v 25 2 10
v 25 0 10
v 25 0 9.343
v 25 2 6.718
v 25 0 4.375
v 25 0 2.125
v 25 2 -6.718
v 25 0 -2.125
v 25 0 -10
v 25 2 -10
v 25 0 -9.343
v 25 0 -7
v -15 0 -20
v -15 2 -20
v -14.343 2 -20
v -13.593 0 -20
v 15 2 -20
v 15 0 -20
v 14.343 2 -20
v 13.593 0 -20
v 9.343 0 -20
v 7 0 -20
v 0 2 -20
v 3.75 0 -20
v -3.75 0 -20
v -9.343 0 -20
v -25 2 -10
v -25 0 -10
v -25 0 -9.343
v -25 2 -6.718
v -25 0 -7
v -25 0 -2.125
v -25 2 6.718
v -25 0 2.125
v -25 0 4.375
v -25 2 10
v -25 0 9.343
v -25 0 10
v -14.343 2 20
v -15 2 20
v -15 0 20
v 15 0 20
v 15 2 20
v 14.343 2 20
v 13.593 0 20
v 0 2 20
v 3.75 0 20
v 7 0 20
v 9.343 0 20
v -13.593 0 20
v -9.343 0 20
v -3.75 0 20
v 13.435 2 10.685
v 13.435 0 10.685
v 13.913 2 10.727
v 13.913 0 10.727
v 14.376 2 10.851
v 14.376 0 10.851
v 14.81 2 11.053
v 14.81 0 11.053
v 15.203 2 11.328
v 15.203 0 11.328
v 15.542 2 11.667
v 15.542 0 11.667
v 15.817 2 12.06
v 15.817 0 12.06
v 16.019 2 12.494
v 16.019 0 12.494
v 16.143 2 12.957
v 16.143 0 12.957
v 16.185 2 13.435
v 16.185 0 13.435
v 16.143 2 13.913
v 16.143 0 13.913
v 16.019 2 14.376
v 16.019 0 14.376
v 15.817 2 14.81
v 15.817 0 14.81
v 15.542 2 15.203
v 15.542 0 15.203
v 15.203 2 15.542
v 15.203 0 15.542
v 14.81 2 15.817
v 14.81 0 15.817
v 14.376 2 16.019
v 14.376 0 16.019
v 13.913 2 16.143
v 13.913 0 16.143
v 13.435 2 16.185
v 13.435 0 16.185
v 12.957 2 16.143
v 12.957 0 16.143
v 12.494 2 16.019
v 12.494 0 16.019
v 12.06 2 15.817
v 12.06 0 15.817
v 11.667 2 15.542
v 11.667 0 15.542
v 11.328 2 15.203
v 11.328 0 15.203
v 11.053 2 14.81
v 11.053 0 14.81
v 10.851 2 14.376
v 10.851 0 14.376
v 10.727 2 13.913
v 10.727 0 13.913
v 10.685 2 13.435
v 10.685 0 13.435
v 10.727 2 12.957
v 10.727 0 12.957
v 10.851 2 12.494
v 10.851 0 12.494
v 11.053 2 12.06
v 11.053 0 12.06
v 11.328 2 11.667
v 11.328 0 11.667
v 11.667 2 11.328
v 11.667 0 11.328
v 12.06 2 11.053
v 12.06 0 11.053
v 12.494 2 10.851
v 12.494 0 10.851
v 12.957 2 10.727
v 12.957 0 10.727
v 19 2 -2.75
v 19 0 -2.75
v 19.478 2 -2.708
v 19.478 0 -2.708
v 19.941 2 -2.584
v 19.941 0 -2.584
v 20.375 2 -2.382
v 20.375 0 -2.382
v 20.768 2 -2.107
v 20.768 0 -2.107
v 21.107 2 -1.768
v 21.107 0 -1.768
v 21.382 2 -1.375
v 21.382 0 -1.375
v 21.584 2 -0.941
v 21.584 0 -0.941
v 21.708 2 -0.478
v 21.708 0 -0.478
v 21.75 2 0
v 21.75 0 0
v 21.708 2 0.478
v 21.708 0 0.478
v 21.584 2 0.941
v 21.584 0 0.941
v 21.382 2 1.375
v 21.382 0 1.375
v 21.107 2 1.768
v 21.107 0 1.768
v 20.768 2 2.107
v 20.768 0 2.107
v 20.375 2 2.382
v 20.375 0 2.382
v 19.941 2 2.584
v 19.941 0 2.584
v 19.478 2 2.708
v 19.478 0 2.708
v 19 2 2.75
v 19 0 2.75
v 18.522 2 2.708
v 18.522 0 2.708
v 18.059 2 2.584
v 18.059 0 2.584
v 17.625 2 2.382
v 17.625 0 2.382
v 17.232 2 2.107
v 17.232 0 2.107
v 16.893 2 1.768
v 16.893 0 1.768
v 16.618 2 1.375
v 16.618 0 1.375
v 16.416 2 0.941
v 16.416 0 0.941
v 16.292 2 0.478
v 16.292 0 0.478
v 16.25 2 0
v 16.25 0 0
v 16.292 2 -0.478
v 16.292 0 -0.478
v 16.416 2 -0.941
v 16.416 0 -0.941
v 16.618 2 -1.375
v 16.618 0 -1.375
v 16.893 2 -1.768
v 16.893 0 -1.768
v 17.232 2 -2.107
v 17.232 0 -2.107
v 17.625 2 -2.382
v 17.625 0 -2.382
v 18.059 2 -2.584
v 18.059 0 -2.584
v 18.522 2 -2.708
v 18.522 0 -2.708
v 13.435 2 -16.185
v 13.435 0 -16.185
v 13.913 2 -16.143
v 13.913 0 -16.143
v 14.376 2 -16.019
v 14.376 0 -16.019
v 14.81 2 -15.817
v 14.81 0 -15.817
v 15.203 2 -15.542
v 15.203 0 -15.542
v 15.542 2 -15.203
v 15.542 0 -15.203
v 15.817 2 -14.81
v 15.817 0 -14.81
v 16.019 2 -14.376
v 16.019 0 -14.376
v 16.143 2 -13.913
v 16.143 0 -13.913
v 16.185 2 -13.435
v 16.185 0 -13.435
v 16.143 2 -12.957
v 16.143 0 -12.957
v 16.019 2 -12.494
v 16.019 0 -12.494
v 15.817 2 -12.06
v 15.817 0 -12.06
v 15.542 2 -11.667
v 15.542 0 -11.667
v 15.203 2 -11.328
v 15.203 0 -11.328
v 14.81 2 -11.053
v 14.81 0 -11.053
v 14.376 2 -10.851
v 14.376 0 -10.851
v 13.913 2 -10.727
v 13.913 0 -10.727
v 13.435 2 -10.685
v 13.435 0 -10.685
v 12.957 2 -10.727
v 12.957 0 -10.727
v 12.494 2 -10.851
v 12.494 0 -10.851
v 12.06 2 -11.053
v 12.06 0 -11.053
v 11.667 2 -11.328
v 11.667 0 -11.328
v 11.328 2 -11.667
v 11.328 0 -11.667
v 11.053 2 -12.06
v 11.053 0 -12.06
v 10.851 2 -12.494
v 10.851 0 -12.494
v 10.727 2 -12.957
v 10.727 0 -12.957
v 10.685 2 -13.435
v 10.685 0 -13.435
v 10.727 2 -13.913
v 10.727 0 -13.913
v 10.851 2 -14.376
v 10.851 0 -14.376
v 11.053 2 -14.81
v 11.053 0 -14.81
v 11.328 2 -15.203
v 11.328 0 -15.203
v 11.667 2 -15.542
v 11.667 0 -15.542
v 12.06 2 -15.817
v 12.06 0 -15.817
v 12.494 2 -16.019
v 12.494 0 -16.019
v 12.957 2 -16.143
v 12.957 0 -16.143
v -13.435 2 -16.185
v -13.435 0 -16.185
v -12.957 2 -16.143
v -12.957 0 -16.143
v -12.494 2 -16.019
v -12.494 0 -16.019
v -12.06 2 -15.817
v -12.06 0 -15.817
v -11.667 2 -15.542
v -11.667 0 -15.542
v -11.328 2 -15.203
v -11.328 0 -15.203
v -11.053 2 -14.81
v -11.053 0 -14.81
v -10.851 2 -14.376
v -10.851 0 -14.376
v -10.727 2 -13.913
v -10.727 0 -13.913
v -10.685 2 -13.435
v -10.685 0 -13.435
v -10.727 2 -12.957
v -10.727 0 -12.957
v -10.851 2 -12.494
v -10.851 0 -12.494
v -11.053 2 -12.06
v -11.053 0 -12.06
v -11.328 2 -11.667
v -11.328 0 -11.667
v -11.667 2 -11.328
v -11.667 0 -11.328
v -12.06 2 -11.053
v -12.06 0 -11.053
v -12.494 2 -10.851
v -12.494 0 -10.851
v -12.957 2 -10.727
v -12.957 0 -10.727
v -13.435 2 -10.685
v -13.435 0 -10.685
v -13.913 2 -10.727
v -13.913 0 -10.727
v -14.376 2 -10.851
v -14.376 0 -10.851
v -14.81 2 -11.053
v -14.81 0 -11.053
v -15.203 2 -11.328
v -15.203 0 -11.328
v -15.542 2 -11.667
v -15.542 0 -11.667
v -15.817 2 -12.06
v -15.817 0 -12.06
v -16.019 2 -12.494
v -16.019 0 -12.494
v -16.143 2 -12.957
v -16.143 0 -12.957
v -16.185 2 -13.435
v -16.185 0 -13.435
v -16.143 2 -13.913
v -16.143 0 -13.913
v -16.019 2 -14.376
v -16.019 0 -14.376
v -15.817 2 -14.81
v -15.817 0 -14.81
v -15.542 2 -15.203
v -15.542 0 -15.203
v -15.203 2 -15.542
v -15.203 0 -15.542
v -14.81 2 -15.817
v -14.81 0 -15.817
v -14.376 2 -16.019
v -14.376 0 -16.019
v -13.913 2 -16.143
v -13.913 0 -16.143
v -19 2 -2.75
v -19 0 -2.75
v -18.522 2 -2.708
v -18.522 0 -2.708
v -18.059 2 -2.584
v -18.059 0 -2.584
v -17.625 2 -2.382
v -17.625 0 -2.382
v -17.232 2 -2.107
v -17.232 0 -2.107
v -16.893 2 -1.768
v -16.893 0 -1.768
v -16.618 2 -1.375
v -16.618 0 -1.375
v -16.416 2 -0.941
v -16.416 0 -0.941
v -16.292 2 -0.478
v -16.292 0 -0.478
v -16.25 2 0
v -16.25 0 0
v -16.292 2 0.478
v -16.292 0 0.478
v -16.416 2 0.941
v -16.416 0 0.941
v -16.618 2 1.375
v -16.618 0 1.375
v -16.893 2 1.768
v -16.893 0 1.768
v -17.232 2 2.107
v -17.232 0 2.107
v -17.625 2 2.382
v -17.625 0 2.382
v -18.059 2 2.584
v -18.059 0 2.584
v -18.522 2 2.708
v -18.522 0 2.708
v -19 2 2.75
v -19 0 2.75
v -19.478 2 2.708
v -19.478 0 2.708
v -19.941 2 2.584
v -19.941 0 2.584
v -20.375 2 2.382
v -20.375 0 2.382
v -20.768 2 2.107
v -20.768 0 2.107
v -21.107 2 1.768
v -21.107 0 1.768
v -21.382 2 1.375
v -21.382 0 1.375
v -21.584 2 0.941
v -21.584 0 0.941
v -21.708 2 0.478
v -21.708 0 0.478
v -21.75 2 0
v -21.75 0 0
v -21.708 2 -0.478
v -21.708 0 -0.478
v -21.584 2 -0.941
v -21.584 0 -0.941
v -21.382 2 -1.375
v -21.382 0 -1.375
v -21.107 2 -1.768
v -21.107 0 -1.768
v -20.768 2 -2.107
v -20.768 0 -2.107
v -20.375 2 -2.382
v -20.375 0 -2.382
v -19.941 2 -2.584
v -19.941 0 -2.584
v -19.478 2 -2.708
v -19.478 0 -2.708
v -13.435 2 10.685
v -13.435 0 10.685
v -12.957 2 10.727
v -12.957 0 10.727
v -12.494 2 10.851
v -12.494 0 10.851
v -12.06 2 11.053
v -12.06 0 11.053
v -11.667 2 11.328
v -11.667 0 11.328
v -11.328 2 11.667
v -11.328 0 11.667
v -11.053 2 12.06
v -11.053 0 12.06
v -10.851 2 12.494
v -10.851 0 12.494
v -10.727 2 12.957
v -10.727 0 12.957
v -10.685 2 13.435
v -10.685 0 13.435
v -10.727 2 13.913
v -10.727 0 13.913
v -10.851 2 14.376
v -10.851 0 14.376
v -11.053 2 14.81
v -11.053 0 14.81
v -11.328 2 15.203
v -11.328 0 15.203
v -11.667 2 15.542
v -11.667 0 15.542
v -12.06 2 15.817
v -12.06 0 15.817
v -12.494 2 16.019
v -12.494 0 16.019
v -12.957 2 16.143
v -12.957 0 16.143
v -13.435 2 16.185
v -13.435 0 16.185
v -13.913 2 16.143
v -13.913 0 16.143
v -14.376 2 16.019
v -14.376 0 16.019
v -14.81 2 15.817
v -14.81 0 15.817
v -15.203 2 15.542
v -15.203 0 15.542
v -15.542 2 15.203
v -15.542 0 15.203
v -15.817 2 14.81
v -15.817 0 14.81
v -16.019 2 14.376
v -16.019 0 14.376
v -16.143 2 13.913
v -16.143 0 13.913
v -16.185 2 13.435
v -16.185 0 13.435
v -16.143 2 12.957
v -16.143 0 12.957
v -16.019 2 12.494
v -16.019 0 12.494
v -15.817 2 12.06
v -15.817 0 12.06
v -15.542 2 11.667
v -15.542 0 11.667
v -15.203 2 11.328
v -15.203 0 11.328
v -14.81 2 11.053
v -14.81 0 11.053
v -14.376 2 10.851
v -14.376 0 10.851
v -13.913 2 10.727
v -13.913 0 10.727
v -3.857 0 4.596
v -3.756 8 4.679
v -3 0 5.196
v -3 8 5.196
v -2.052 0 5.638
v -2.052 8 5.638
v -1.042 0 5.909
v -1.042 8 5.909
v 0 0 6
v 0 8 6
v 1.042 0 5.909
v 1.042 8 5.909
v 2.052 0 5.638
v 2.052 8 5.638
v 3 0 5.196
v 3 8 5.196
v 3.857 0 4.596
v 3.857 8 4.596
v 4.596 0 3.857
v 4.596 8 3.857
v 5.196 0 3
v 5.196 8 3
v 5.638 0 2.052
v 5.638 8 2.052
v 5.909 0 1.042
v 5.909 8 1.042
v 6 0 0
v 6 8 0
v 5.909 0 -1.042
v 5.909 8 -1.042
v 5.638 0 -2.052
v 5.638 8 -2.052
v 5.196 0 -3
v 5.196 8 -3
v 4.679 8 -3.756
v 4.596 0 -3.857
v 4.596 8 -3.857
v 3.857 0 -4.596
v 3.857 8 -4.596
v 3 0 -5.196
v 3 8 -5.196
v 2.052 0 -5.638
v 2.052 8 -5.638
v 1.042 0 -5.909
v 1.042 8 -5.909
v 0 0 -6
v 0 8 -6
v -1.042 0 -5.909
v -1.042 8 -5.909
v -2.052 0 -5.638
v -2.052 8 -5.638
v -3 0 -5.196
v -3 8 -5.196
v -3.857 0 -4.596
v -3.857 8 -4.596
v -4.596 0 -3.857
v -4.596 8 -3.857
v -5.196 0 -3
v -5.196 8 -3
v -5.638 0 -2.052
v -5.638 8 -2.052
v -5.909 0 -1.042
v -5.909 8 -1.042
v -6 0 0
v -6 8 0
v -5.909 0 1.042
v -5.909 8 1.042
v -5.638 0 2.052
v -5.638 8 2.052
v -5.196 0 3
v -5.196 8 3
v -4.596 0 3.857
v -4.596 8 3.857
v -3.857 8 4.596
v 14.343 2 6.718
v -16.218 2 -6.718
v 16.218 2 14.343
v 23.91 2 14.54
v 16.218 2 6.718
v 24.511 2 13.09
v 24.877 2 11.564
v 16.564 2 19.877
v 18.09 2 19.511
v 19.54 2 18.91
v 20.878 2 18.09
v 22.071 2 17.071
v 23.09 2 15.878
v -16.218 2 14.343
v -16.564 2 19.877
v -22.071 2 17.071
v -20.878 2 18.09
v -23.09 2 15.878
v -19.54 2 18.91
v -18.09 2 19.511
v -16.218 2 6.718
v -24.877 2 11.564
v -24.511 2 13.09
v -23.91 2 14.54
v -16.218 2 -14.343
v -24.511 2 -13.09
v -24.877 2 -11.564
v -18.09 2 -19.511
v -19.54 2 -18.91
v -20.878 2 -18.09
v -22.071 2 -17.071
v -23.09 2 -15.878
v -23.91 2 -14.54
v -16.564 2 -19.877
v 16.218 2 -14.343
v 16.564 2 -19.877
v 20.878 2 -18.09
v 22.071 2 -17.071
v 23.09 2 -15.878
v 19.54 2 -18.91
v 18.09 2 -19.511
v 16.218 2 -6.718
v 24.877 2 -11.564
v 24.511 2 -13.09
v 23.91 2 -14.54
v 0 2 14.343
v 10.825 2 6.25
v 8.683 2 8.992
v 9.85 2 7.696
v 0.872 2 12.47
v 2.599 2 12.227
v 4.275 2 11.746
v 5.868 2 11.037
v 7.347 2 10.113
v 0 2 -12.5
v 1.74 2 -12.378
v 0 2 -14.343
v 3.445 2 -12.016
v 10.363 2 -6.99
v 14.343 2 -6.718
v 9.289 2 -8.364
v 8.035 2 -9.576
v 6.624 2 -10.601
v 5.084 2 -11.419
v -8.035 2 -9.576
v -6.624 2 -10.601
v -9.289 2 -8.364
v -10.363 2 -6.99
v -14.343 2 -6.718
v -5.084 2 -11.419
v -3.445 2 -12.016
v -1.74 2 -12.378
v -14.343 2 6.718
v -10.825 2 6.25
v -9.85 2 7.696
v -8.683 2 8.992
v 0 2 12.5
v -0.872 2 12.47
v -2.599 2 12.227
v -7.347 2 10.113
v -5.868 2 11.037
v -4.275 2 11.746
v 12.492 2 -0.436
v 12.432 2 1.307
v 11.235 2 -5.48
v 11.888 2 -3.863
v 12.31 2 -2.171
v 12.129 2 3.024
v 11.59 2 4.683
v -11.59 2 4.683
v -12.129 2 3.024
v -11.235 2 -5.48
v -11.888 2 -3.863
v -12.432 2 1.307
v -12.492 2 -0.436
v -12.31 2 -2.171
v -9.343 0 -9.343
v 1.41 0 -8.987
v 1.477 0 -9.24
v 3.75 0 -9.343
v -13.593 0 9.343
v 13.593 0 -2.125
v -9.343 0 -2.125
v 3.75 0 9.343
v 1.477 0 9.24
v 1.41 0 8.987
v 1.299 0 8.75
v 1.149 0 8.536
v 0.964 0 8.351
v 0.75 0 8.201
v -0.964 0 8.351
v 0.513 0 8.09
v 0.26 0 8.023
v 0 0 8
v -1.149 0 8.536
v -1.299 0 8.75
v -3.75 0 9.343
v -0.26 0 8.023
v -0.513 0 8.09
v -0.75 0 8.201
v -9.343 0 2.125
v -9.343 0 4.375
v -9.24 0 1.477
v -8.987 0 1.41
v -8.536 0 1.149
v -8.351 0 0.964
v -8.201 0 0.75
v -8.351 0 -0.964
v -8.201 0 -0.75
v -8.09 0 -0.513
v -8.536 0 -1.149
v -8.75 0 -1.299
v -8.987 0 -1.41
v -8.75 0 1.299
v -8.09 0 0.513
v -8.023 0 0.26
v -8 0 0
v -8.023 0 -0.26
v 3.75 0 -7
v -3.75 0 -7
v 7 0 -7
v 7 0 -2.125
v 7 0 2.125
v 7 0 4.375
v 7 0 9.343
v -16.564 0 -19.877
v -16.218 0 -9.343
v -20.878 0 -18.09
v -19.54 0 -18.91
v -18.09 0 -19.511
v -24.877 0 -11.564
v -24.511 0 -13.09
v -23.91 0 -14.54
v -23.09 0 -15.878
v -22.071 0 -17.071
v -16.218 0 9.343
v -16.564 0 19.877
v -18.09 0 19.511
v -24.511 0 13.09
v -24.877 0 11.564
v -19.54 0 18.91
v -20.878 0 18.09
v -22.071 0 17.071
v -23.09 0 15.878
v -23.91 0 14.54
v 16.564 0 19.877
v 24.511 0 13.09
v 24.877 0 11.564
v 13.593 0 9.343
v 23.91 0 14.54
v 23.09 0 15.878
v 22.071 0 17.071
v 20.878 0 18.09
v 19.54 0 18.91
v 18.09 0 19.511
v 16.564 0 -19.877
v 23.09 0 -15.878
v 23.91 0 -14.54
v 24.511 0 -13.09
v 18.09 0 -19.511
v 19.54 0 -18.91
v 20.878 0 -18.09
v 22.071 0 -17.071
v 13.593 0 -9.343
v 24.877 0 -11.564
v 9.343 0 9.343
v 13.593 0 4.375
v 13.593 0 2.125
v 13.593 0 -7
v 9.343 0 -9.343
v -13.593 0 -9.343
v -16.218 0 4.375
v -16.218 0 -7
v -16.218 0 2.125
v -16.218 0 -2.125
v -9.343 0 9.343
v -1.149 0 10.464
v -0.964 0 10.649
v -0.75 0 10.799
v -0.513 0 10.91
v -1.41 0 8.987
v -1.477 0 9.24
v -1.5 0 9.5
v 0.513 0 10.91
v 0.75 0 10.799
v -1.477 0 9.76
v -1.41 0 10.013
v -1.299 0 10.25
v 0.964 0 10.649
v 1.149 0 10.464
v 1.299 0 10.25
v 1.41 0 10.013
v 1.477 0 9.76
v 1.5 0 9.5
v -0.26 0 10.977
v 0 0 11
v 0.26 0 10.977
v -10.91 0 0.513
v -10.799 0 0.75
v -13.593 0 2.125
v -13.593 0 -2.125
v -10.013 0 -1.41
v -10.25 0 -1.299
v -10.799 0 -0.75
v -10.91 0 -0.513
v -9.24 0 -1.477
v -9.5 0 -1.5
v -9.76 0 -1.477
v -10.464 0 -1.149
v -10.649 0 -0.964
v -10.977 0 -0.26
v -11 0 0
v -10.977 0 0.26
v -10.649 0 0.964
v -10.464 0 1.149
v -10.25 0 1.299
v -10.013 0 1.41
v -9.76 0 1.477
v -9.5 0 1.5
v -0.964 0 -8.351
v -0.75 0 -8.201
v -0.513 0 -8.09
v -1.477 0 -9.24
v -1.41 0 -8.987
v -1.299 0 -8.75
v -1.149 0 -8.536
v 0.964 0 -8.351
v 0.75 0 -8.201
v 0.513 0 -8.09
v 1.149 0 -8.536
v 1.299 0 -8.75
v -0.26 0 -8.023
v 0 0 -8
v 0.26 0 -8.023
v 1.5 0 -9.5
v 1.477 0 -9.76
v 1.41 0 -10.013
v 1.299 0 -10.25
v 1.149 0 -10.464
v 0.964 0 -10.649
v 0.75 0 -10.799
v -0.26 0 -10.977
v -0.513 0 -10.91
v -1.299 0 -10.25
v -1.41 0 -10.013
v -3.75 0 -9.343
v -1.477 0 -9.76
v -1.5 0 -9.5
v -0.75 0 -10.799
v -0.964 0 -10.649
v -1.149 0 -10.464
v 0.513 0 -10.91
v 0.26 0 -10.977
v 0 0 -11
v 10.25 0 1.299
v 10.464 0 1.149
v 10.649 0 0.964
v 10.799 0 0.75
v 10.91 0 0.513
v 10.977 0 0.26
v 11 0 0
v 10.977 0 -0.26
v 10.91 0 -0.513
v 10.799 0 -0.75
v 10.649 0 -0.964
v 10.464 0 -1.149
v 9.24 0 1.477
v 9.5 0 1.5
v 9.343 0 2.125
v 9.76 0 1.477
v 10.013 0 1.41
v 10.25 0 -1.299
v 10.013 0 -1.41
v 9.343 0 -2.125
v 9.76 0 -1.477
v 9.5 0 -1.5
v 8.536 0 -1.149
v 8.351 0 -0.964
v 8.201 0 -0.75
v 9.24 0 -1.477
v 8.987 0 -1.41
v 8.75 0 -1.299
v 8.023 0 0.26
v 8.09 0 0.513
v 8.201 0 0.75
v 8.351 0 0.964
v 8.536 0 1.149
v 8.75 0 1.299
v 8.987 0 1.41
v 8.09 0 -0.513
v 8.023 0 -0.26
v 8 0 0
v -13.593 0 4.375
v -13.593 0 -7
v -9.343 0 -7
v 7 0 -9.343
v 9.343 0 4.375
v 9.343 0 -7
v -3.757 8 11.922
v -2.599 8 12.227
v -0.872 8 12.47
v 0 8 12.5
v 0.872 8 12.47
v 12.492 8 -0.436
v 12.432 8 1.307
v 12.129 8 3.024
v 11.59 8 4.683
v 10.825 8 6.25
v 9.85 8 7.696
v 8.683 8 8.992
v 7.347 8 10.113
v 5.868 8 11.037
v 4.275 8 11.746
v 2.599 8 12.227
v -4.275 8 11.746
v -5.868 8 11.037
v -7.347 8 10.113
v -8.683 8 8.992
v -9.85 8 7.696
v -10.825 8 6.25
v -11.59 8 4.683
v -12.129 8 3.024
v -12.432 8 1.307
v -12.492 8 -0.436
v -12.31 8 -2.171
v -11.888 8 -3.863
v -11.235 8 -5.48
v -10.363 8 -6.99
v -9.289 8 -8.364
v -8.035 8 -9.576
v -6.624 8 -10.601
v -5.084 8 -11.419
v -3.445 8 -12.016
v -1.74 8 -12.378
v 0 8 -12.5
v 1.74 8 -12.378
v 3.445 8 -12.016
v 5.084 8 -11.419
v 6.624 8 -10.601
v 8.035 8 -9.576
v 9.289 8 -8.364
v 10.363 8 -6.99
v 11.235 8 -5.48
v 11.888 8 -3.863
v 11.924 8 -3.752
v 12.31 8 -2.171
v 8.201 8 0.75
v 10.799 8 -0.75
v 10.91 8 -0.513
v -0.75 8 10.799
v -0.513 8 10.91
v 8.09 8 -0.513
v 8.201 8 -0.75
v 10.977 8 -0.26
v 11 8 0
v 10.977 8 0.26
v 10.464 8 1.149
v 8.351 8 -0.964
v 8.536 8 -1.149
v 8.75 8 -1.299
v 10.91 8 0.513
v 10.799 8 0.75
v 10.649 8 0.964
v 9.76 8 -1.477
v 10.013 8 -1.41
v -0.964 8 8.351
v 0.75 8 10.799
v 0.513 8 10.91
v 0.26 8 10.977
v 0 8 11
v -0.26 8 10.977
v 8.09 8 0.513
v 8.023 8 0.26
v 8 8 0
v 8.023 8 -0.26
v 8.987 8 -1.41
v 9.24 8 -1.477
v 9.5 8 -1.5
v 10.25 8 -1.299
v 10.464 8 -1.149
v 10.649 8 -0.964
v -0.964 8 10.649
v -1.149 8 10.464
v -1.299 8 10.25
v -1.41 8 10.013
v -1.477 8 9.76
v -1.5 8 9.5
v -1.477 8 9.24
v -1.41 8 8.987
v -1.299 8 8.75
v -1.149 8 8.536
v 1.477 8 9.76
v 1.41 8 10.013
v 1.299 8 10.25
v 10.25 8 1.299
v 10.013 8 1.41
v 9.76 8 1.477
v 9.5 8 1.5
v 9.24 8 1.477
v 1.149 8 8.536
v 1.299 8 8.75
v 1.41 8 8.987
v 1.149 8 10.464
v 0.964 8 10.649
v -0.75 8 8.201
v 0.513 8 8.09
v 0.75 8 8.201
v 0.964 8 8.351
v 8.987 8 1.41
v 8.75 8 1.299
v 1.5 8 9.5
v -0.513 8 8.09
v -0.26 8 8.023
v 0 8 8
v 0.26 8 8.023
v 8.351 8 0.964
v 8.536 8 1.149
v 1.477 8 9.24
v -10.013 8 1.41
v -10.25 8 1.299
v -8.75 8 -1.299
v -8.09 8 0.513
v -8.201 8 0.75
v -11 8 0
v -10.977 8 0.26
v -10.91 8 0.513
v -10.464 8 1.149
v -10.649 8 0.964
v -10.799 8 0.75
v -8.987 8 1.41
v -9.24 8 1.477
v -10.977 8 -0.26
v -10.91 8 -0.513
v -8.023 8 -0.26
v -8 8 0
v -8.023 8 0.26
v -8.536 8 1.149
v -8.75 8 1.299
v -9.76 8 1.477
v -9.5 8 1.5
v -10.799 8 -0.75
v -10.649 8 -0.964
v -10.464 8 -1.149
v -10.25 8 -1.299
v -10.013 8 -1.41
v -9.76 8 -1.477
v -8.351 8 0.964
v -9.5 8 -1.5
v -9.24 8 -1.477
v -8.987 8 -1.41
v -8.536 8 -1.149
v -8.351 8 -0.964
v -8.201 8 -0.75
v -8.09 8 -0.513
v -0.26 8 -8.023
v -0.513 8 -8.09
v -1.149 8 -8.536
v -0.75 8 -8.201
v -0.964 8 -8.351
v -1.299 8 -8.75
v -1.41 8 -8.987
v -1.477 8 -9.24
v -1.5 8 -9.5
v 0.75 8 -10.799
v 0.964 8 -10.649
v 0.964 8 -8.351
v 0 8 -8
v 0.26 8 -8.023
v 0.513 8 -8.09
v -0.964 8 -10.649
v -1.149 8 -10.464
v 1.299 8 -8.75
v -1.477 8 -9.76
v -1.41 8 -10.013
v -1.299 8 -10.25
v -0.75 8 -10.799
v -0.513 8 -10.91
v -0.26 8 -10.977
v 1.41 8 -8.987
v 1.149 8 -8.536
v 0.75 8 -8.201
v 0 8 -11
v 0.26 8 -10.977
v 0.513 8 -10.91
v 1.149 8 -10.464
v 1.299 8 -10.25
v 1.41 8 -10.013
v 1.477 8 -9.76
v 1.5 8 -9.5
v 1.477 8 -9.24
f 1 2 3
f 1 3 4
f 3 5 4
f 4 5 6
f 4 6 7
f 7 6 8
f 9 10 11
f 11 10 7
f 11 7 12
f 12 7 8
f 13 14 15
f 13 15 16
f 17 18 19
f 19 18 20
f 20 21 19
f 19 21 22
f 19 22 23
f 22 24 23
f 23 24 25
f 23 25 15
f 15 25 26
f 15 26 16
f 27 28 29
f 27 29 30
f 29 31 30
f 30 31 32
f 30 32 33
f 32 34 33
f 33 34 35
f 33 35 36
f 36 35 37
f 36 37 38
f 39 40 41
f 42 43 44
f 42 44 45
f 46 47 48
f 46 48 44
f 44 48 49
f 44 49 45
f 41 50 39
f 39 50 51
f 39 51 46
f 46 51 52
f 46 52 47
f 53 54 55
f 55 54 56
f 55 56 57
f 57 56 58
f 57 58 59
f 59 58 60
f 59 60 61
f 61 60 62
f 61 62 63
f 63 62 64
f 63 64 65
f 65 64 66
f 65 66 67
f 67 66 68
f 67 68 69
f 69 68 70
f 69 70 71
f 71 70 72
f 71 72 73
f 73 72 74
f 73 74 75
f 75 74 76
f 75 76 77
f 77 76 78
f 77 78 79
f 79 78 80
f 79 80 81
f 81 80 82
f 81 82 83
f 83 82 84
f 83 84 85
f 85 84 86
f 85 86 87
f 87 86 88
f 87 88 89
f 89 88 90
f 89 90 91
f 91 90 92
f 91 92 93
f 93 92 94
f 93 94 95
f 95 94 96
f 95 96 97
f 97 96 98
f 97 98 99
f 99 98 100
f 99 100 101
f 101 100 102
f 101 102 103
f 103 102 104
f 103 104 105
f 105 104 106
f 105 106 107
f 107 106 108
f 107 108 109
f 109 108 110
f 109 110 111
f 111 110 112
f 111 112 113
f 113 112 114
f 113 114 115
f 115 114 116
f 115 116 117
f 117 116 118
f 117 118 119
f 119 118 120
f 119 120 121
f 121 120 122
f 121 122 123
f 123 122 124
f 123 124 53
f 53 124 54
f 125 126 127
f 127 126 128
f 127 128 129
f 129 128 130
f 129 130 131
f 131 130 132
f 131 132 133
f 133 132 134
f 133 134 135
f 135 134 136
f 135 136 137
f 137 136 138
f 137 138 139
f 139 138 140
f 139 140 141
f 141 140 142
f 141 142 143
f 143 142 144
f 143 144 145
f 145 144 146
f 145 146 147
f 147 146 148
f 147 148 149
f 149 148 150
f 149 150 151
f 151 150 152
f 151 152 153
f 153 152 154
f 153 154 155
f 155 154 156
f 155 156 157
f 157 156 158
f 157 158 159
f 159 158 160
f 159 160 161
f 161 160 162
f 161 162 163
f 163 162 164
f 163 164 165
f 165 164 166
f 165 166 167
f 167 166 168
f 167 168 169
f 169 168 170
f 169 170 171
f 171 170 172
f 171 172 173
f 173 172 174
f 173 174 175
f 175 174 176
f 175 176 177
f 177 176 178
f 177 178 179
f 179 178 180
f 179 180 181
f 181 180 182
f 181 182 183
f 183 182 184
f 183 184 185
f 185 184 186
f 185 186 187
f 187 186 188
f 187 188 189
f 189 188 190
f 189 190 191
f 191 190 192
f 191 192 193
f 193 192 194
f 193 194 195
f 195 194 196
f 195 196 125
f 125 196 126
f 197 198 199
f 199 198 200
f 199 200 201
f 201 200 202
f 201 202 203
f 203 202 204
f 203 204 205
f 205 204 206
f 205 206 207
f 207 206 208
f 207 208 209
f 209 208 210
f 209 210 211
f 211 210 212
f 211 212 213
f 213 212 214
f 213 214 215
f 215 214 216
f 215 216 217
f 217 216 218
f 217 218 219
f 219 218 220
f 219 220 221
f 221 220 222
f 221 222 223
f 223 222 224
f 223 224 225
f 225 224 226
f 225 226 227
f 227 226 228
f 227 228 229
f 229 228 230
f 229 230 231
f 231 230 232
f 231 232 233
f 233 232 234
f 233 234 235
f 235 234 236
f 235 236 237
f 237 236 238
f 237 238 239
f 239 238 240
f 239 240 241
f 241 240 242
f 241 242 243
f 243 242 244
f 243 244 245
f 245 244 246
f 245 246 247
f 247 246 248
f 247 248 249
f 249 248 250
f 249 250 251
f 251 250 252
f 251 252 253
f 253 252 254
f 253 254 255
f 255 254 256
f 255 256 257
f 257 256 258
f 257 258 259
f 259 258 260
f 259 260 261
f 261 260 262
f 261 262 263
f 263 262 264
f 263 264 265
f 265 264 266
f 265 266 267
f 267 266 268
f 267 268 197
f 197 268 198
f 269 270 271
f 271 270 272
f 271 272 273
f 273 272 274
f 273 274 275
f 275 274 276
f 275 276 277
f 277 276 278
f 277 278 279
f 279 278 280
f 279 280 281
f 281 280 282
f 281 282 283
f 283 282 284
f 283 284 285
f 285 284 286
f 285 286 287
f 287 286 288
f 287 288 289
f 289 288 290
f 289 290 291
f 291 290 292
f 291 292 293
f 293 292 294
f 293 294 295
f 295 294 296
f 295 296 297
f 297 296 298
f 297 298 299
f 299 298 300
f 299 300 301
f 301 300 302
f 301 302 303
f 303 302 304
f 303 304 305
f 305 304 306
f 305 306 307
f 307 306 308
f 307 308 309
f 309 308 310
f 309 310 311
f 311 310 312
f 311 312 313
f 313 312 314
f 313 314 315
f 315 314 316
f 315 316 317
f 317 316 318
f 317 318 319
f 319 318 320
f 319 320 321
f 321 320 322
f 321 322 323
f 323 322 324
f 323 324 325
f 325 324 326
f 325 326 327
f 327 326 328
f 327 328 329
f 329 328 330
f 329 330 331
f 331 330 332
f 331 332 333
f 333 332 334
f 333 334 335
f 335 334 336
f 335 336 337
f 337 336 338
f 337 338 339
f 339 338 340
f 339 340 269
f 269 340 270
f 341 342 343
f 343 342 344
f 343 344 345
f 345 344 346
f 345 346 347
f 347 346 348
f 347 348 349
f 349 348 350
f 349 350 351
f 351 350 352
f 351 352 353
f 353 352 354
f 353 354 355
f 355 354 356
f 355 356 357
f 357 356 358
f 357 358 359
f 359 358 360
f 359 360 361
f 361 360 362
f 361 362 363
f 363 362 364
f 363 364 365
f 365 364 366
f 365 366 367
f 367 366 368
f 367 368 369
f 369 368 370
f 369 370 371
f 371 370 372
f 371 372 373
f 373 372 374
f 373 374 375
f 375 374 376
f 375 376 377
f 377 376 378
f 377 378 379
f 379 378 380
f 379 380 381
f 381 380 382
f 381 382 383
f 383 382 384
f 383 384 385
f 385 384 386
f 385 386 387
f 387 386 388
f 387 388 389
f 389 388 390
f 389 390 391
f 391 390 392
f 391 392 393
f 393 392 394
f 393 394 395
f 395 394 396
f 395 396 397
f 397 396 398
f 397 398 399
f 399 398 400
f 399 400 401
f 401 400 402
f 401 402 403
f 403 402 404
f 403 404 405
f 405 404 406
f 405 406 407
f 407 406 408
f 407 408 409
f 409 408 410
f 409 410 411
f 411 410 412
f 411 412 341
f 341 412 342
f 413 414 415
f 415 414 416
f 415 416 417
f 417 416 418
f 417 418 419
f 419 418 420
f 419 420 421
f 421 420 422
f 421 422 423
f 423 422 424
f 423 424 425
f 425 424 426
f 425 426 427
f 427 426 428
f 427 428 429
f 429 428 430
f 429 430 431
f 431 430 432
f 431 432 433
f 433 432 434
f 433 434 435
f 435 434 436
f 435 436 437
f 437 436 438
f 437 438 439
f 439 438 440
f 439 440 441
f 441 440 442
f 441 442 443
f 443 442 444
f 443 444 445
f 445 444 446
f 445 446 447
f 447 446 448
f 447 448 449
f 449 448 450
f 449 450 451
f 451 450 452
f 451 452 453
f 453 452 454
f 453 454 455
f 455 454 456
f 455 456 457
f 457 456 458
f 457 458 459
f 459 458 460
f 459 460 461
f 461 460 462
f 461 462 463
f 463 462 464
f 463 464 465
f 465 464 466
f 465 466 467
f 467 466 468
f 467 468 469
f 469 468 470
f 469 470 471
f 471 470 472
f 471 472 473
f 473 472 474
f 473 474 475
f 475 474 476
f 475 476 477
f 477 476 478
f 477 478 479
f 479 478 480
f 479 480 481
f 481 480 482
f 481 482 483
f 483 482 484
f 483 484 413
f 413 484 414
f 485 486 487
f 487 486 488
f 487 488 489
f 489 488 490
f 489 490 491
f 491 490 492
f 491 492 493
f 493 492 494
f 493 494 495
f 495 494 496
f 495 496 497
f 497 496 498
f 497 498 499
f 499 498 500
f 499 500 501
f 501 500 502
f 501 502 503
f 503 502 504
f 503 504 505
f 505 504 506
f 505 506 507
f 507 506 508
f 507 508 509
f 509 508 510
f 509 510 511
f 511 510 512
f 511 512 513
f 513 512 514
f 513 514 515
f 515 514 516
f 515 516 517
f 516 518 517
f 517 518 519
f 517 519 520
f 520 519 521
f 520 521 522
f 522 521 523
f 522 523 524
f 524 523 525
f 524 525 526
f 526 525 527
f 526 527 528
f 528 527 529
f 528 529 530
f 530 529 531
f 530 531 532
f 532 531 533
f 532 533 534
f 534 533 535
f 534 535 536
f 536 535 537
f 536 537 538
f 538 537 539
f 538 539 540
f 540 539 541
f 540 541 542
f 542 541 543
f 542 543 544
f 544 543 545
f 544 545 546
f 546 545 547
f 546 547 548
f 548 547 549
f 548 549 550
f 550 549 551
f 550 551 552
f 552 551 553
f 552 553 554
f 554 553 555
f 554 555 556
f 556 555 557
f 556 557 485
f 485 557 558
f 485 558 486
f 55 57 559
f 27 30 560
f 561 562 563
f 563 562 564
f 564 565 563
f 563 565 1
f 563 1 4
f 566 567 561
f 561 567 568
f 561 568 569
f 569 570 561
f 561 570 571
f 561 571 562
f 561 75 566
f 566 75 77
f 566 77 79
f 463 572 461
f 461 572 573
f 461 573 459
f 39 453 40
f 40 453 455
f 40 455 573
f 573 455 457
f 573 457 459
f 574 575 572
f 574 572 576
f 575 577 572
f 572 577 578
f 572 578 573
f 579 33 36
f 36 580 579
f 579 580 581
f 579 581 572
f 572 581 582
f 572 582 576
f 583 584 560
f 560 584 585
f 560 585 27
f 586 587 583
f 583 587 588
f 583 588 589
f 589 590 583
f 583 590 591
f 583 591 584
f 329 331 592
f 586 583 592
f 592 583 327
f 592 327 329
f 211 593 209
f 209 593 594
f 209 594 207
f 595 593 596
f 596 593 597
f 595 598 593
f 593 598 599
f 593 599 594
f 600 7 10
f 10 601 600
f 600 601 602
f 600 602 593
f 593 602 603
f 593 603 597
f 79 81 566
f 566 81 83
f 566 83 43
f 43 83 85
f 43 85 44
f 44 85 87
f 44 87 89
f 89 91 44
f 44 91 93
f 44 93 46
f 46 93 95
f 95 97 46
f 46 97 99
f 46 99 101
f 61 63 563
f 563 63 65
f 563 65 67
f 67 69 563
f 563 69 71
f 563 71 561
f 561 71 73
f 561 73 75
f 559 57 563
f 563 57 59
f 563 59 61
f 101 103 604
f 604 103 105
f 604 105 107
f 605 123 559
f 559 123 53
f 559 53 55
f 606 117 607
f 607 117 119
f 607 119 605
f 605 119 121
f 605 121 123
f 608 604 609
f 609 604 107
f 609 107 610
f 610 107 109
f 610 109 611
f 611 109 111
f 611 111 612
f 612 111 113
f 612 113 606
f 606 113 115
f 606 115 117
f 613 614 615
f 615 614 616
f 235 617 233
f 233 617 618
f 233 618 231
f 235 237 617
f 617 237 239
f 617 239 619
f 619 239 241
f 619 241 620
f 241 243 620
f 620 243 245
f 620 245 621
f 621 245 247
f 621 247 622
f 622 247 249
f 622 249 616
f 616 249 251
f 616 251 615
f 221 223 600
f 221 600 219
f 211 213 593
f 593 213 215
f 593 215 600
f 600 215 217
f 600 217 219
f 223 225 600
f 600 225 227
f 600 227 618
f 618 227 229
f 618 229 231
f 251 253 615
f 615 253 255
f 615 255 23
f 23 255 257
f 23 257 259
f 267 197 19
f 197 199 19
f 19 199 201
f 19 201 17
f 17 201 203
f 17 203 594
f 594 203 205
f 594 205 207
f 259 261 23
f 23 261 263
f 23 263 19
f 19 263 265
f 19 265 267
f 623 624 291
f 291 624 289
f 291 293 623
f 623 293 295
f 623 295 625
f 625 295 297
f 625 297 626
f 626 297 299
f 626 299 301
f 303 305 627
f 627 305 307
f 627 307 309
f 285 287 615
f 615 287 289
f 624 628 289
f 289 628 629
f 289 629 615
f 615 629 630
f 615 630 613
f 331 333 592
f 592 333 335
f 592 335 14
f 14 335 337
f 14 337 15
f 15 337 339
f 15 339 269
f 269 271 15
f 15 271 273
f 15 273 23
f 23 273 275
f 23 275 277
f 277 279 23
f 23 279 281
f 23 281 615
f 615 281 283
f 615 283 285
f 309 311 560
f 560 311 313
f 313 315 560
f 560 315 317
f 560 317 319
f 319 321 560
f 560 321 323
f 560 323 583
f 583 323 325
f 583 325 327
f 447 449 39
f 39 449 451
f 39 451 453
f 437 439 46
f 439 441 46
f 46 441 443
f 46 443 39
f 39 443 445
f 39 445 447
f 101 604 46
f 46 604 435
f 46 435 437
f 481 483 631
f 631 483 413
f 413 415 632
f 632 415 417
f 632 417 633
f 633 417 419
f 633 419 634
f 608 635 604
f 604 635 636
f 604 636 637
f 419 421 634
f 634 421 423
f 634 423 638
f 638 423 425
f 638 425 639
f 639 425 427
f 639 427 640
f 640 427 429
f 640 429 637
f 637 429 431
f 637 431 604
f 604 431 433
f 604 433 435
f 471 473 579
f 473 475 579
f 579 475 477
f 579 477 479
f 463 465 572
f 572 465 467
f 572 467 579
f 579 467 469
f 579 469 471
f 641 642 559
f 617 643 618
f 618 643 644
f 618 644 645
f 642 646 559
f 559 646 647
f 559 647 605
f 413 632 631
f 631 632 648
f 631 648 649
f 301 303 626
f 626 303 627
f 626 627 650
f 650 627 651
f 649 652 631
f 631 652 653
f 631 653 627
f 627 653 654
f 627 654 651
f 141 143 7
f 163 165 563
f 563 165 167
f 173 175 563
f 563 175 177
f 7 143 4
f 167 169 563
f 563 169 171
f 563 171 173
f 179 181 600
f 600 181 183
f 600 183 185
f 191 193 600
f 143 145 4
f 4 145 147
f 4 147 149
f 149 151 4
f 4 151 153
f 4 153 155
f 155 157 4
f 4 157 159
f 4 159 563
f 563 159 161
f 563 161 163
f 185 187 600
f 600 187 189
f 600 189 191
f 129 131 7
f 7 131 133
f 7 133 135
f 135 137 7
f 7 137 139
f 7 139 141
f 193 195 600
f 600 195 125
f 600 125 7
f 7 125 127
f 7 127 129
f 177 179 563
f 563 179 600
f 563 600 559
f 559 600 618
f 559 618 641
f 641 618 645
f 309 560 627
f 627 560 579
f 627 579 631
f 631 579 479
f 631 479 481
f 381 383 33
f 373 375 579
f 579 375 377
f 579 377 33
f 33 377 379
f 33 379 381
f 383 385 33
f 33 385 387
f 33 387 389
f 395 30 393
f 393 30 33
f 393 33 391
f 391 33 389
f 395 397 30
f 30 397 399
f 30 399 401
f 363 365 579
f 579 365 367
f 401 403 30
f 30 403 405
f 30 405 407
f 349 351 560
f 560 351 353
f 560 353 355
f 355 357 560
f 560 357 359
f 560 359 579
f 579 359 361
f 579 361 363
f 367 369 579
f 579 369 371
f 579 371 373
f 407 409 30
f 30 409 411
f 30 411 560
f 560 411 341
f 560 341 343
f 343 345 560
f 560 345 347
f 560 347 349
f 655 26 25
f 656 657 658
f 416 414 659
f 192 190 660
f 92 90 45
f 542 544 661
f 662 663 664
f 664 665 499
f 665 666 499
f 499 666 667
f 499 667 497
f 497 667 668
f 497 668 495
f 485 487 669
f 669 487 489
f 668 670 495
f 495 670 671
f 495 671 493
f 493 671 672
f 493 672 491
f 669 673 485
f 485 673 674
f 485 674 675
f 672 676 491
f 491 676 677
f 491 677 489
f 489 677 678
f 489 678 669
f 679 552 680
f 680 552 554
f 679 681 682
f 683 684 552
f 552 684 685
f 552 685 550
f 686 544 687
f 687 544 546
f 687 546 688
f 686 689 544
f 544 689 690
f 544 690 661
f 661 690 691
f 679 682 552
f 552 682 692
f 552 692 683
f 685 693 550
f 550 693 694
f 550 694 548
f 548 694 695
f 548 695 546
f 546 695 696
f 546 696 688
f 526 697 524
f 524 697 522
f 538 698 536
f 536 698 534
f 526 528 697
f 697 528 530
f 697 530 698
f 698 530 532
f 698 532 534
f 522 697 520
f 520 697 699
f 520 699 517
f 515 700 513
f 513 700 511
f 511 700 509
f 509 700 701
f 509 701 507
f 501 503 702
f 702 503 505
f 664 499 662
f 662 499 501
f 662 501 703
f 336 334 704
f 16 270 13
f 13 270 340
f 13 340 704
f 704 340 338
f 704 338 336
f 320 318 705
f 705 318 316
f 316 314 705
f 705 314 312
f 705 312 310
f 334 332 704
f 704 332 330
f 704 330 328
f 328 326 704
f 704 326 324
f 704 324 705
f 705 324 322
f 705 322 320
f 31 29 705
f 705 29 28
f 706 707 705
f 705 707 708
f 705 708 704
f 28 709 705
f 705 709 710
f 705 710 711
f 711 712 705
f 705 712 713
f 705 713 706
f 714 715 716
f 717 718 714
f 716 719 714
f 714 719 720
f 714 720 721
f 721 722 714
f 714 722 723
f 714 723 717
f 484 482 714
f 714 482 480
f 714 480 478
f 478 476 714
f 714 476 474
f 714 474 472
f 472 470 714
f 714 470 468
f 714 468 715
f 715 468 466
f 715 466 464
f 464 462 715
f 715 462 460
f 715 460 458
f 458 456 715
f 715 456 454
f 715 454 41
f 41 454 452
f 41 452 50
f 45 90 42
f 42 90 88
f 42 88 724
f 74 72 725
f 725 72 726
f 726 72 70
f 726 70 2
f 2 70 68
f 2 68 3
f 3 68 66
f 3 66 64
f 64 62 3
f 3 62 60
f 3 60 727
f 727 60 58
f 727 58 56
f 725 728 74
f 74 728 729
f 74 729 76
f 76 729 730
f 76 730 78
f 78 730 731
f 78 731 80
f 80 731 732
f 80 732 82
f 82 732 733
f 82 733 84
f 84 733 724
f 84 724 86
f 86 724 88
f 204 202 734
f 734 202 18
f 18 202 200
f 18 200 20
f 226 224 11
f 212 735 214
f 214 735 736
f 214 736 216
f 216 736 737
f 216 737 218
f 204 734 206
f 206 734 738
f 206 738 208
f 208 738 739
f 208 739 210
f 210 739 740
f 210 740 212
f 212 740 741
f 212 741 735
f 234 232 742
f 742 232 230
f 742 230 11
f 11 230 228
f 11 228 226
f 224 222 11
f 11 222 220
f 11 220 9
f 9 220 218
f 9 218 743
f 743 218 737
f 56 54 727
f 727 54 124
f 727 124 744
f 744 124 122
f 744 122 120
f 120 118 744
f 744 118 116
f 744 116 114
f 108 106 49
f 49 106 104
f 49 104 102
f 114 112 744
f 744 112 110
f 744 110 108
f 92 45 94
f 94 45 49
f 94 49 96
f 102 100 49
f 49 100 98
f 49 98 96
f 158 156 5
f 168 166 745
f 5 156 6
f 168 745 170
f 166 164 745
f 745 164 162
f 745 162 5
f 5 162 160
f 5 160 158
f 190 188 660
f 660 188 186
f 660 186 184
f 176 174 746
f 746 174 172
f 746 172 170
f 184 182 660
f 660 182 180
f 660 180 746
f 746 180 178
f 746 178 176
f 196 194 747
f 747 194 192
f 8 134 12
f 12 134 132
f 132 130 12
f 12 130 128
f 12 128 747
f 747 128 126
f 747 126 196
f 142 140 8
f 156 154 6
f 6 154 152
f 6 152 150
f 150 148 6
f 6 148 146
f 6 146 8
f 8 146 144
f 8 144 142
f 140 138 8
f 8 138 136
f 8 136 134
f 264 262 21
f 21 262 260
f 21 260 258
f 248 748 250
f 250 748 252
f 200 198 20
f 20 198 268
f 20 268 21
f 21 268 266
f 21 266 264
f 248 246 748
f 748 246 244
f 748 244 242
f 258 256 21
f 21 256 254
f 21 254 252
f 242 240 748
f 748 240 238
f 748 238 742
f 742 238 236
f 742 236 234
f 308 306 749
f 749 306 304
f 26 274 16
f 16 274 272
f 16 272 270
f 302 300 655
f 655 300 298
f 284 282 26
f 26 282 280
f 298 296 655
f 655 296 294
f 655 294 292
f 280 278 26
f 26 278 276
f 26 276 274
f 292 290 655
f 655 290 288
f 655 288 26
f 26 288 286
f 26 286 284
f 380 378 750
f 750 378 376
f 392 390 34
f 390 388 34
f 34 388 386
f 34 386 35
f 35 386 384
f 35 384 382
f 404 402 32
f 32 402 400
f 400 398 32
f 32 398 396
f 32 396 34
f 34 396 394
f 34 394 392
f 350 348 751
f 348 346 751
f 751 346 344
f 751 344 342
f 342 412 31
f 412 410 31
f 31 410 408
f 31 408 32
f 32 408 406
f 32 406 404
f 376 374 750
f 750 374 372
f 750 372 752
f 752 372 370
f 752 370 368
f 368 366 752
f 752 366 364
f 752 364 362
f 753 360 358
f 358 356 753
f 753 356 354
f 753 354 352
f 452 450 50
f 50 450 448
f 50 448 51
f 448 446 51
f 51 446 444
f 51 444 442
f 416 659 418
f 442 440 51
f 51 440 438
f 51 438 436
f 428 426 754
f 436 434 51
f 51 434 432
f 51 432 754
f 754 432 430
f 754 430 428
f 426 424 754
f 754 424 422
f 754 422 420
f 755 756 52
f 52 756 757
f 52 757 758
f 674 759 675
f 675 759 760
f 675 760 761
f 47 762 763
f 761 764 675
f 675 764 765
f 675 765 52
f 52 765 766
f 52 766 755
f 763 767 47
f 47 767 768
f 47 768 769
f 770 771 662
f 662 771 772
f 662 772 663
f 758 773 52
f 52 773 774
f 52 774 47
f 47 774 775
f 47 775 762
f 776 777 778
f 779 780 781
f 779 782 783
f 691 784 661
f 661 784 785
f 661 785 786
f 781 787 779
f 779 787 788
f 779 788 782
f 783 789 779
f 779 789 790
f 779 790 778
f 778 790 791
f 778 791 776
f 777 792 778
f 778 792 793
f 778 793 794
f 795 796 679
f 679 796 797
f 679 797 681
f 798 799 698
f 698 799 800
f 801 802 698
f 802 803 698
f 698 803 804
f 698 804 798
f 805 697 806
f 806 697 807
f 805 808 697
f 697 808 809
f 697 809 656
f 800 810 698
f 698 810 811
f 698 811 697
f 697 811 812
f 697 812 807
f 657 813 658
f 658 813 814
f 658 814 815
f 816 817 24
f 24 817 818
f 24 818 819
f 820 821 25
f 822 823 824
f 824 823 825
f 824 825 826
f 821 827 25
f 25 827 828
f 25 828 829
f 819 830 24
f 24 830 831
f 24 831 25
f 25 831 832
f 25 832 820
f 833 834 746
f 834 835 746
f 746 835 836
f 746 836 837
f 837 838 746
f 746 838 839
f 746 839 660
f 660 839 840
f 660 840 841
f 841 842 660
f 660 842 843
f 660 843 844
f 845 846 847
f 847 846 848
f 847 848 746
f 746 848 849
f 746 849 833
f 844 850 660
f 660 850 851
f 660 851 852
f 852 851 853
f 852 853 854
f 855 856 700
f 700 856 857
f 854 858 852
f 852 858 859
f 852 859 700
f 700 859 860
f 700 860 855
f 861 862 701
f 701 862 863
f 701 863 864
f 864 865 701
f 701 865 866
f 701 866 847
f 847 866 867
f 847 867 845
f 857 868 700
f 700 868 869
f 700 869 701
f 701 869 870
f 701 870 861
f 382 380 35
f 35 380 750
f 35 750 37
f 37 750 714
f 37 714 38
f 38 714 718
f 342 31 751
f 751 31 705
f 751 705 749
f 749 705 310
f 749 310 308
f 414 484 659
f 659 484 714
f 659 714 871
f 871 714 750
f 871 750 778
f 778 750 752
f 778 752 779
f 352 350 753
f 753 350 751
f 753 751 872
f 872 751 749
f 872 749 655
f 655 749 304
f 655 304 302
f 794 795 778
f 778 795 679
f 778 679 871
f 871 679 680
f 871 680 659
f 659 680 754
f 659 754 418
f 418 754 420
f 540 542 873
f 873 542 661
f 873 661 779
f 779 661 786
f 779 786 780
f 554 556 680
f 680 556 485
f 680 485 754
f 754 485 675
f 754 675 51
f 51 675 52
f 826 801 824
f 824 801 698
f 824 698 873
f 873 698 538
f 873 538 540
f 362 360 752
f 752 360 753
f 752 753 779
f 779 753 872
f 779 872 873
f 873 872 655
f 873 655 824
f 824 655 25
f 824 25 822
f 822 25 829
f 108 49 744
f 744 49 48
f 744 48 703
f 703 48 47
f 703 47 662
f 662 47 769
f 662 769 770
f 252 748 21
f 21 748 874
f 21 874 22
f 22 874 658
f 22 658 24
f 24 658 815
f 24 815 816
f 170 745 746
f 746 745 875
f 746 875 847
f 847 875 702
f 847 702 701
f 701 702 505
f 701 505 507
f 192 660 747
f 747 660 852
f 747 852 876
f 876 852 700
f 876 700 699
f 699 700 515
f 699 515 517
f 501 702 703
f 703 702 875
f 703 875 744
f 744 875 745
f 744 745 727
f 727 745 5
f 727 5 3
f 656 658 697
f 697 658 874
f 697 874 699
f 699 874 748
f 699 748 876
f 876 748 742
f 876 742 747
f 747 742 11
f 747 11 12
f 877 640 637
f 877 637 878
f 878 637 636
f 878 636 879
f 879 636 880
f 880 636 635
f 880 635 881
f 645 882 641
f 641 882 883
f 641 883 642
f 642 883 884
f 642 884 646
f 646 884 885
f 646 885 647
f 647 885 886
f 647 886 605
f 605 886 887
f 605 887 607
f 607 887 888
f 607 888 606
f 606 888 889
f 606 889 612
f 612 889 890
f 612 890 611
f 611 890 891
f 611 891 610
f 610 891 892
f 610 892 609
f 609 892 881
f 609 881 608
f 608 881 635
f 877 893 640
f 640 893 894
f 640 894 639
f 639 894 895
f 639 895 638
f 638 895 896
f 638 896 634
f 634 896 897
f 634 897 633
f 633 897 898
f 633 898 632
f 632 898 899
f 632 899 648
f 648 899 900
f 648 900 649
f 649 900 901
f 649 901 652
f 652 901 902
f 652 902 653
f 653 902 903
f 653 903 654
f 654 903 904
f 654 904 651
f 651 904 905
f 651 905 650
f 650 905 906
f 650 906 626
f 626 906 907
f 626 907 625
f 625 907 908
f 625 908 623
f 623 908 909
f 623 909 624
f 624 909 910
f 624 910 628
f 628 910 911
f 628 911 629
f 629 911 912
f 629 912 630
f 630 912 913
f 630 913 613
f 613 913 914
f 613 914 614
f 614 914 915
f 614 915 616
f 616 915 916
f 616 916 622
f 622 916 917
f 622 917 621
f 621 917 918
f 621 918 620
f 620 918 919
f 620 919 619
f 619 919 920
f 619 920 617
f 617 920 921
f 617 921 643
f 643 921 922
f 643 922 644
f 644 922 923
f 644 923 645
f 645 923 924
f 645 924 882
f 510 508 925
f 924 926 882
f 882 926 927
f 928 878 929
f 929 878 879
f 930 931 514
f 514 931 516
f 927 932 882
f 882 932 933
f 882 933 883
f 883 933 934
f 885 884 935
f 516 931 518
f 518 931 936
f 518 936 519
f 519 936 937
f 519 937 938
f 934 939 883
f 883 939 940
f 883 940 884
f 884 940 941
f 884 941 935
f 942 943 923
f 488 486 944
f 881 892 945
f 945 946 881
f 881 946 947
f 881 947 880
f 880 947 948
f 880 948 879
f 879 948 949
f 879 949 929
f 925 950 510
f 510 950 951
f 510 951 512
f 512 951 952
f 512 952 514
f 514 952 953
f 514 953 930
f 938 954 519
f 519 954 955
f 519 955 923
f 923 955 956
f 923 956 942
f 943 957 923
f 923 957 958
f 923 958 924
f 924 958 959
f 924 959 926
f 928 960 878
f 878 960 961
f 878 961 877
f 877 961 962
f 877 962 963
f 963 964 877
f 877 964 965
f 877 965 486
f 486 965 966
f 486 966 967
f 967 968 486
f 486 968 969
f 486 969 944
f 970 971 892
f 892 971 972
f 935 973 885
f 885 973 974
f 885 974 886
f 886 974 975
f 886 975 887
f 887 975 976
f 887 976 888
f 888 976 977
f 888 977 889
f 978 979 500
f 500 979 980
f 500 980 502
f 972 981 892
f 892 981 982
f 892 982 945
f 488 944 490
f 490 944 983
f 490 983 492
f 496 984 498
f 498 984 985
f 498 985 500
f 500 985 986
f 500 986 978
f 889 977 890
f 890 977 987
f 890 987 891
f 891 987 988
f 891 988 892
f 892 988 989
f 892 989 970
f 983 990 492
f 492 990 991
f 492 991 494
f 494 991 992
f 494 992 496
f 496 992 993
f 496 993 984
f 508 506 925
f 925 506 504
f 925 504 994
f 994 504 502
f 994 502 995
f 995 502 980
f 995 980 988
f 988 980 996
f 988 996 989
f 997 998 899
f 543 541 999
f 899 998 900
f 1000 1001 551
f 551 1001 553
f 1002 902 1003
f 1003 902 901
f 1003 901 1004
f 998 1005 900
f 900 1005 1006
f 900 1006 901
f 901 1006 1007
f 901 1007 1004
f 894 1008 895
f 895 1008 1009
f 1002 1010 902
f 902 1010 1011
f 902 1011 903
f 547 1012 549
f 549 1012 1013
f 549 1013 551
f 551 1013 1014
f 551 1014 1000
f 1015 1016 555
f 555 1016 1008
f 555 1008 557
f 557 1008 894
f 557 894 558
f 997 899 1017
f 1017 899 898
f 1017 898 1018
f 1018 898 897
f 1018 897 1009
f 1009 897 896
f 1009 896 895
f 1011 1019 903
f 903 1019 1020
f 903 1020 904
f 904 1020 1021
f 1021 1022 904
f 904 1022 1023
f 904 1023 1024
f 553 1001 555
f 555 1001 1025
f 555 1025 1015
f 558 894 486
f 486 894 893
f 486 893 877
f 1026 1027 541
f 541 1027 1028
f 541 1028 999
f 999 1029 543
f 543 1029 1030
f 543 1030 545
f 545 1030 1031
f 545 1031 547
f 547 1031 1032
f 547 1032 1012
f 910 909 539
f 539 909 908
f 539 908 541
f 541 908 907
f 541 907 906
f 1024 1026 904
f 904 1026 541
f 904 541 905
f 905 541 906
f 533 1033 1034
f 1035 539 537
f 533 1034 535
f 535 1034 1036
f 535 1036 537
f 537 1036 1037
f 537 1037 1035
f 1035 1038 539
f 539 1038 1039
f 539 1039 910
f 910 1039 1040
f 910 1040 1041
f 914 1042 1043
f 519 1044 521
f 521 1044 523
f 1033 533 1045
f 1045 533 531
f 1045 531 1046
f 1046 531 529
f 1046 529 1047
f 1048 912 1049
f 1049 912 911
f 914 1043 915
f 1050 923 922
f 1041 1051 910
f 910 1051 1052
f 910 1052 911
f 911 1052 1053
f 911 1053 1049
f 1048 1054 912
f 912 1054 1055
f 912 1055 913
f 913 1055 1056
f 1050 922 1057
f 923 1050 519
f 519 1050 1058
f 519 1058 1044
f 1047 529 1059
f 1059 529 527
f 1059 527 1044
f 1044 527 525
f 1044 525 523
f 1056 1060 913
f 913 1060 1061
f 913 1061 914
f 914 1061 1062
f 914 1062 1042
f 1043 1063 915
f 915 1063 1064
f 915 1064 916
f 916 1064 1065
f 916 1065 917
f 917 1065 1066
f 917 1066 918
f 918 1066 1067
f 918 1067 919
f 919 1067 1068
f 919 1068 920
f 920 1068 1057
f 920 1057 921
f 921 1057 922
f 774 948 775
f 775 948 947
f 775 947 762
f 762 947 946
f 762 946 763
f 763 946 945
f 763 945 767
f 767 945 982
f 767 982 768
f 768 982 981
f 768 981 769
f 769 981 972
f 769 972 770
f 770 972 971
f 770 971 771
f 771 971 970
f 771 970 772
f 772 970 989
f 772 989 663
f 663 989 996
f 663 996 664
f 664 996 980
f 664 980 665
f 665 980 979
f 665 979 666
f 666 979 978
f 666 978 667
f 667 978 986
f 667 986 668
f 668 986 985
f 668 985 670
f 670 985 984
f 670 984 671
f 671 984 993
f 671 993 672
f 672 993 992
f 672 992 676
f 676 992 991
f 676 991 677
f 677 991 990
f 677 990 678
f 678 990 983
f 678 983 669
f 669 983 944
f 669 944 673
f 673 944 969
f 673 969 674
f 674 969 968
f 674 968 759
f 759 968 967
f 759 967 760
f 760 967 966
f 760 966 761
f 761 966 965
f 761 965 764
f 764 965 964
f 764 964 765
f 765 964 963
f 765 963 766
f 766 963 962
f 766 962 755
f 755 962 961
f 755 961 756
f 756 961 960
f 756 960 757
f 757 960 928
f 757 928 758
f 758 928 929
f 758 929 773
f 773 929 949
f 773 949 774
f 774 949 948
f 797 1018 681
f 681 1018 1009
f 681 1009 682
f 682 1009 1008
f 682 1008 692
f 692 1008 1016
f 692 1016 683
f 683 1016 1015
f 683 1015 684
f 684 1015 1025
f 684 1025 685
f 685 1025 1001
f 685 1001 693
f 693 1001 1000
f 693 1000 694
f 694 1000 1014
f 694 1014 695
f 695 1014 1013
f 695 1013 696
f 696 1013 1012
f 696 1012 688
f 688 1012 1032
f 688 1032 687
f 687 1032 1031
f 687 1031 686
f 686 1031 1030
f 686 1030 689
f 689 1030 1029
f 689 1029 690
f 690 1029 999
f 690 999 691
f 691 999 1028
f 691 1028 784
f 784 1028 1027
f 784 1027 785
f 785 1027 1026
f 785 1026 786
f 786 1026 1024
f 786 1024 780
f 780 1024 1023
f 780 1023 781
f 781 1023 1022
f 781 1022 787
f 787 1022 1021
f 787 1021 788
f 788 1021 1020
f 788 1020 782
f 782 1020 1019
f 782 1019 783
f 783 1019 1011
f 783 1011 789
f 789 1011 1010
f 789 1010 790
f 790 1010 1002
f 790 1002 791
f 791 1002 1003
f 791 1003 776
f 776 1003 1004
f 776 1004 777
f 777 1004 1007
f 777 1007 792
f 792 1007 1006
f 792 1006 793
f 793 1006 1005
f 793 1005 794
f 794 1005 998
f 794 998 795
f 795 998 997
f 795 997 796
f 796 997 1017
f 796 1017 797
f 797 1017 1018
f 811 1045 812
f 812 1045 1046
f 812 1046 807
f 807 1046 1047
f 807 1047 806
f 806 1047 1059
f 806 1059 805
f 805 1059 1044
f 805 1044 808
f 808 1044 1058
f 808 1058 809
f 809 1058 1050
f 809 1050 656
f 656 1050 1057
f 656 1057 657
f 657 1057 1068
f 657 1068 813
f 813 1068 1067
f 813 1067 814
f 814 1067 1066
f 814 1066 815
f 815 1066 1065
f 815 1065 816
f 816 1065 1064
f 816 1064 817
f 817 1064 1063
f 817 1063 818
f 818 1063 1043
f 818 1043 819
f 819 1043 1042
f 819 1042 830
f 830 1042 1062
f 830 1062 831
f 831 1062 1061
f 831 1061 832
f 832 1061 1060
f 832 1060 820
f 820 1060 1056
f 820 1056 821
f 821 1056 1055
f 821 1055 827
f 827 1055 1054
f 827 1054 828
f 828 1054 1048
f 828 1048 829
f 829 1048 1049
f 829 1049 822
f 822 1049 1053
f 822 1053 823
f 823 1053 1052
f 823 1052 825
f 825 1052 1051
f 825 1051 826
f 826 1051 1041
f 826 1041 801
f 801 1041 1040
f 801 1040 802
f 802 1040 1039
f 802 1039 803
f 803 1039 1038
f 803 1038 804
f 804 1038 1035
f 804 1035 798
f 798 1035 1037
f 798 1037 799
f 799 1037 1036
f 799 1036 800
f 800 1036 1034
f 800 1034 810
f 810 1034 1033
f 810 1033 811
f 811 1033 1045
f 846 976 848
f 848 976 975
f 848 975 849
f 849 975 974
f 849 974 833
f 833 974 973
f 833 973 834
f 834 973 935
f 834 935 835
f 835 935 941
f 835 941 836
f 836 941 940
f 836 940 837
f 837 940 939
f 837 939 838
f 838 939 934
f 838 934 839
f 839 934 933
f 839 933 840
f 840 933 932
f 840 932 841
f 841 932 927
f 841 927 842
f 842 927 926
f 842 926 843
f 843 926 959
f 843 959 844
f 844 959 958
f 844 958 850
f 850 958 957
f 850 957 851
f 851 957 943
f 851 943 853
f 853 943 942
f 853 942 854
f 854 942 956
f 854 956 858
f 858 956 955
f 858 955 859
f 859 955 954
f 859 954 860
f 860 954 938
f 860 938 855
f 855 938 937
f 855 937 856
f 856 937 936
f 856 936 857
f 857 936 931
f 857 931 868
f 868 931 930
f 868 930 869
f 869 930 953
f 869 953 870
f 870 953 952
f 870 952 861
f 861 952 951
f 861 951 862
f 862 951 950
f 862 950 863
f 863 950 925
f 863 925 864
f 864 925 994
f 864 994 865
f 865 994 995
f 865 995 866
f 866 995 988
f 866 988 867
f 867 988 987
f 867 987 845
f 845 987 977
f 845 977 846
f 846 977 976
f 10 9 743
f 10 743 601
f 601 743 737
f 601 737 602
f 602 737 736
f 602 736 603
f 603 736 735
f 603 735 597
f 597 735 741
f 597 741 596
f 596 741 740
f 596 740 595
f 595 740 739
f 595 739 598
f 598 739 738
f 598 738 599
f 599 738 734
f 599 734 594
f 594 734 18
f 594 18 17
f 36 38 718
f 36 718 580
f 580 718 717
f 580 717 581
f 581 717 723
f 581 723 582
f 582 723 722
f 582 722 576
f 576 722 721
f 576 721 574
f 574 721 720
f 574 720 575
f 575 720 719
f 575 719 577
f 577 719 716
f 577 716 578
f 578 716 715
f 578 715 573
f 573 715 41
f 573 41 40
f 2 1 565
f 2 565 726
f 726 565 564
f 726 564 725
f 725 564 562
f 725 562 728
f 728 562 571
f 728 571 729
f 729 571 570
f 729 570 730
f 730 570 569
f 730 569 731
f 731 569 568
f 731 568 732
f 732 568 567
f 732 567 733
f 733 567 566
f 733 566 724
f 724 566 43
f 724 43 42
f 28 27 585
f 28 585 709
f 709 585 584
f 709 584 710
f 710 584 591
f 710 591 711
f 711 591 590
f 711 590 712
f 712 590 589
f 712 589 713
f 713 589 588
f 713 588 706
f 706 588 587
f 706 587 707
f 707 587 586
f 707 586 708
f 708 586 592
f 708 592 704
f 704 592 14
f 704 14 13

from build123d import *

# Parameters (mm, degrees)
SKETCH1_W           = 50
SKETCH1_H           = 40
SKETCH1_R           = 12.5
SKETCH1_R_2         = 2.75
SKETCH1_R_3         = 6
BOSS_EXTRUDE1_DEPTH = 2
SKETCH1_3_R         = 12.5
SKETCH1_3_R_2       = 6
BOSS_EXTRUDE2_DEPTH = 8
HOLE1_D             = 3
HOLE1_DEPTH         = 8
CIRPATTERN1_COUNT   = 4
FILLET1_R           = 10


with BuildPart() as part:
    # Sketch1 → Boss-Extrude1 (new body)
    with BuildSketch(Plane(origin=(0, 0, 0), x_dir=(1, 0, 0), z_dir=(0, 1, 0))):
        Rectangle(SKETCH1_W, SKETCH1_H)
        Circle(SKETCH1_R, mode=Mode.SUBTRACT)
        with Locations((-13.435028843, -13.435028843)):
            Circle(SKETCH1_R_2, mode=Mode.SUBTRACT)
        with Locations((-19, 0)):
            Circle(SKETCH1_R_2, mode=Mode.SUBTRACT)
        with Locations((-13.435028843, 13.435028843)):
            Circle(SKETCH1_R_2, mode=Mode.SUBTRACT)
        with Locations((13.435028843, 13.435028843)):
            Circle(SKETCH1_R_2, mode=Mode.SUBTRACT)
        with Locations((19, 0)):
            Circle(SKETCH1_R_2, mode=Mode.SUBTRACT)
        with Locations((13.435028843, -13.435028843)):
            Circle(SKETCH1_R_2, mode=Mode.SUBTRACT)
        Circle(SKETCH1_R)
        Circle(SKETCH1_R_3, mode=Mode.SUBTRACT)
    extrude(amount=BOSS_EXTRUDE1_DEPTH)

    # Sketch1<3> → Boss-Extrude2 (add)
    with BuildSketch(Plane(origin=(0, 0, 0), x_dir=(1, 0, 0), z_dir=(0, 1, 0))):
        Circle(SKETCH1_3_R)
        Circle(SKETCH1_3_R_2, mode=Mode.SUBTRACT)
    extrude(amount=BOSS_EXTRUDE2_DEPTH)

    # Hole1
    with Locations(Plane(origin=(0, 8, 0), x_dir=(1, 0, 0), z_dir=(0, 1, 0))):
        with Locations((0, -9.5)):
            hole1 = Hole(HOLE1_D / 2, depth=HOLE1_DEPTH)

    # CirPattern1: Hole1 ×4 about axis
    cirpattern1_axis = Axis((0, 0, 0), (0, 1, 0))
    for i in range(1, CIRPATTERN1_COUNT):
        add(hole1.rotate(cirpattern1_axis, i * 360 / CIRPATTERN1_COUNT), mode=Mode.SUBTRACT)

    # Fillet1
    fillet1_edges = [part.edges().sort_by_distance(p)[0] for p in [
        (25, 1, 20),
        (-25, 1, 20),
        (-25, 1, -20),
        (25, 1, -20),
    ]]
    fillet(fillet1_edges, radius=FILLET1_R)


solid = part.part
